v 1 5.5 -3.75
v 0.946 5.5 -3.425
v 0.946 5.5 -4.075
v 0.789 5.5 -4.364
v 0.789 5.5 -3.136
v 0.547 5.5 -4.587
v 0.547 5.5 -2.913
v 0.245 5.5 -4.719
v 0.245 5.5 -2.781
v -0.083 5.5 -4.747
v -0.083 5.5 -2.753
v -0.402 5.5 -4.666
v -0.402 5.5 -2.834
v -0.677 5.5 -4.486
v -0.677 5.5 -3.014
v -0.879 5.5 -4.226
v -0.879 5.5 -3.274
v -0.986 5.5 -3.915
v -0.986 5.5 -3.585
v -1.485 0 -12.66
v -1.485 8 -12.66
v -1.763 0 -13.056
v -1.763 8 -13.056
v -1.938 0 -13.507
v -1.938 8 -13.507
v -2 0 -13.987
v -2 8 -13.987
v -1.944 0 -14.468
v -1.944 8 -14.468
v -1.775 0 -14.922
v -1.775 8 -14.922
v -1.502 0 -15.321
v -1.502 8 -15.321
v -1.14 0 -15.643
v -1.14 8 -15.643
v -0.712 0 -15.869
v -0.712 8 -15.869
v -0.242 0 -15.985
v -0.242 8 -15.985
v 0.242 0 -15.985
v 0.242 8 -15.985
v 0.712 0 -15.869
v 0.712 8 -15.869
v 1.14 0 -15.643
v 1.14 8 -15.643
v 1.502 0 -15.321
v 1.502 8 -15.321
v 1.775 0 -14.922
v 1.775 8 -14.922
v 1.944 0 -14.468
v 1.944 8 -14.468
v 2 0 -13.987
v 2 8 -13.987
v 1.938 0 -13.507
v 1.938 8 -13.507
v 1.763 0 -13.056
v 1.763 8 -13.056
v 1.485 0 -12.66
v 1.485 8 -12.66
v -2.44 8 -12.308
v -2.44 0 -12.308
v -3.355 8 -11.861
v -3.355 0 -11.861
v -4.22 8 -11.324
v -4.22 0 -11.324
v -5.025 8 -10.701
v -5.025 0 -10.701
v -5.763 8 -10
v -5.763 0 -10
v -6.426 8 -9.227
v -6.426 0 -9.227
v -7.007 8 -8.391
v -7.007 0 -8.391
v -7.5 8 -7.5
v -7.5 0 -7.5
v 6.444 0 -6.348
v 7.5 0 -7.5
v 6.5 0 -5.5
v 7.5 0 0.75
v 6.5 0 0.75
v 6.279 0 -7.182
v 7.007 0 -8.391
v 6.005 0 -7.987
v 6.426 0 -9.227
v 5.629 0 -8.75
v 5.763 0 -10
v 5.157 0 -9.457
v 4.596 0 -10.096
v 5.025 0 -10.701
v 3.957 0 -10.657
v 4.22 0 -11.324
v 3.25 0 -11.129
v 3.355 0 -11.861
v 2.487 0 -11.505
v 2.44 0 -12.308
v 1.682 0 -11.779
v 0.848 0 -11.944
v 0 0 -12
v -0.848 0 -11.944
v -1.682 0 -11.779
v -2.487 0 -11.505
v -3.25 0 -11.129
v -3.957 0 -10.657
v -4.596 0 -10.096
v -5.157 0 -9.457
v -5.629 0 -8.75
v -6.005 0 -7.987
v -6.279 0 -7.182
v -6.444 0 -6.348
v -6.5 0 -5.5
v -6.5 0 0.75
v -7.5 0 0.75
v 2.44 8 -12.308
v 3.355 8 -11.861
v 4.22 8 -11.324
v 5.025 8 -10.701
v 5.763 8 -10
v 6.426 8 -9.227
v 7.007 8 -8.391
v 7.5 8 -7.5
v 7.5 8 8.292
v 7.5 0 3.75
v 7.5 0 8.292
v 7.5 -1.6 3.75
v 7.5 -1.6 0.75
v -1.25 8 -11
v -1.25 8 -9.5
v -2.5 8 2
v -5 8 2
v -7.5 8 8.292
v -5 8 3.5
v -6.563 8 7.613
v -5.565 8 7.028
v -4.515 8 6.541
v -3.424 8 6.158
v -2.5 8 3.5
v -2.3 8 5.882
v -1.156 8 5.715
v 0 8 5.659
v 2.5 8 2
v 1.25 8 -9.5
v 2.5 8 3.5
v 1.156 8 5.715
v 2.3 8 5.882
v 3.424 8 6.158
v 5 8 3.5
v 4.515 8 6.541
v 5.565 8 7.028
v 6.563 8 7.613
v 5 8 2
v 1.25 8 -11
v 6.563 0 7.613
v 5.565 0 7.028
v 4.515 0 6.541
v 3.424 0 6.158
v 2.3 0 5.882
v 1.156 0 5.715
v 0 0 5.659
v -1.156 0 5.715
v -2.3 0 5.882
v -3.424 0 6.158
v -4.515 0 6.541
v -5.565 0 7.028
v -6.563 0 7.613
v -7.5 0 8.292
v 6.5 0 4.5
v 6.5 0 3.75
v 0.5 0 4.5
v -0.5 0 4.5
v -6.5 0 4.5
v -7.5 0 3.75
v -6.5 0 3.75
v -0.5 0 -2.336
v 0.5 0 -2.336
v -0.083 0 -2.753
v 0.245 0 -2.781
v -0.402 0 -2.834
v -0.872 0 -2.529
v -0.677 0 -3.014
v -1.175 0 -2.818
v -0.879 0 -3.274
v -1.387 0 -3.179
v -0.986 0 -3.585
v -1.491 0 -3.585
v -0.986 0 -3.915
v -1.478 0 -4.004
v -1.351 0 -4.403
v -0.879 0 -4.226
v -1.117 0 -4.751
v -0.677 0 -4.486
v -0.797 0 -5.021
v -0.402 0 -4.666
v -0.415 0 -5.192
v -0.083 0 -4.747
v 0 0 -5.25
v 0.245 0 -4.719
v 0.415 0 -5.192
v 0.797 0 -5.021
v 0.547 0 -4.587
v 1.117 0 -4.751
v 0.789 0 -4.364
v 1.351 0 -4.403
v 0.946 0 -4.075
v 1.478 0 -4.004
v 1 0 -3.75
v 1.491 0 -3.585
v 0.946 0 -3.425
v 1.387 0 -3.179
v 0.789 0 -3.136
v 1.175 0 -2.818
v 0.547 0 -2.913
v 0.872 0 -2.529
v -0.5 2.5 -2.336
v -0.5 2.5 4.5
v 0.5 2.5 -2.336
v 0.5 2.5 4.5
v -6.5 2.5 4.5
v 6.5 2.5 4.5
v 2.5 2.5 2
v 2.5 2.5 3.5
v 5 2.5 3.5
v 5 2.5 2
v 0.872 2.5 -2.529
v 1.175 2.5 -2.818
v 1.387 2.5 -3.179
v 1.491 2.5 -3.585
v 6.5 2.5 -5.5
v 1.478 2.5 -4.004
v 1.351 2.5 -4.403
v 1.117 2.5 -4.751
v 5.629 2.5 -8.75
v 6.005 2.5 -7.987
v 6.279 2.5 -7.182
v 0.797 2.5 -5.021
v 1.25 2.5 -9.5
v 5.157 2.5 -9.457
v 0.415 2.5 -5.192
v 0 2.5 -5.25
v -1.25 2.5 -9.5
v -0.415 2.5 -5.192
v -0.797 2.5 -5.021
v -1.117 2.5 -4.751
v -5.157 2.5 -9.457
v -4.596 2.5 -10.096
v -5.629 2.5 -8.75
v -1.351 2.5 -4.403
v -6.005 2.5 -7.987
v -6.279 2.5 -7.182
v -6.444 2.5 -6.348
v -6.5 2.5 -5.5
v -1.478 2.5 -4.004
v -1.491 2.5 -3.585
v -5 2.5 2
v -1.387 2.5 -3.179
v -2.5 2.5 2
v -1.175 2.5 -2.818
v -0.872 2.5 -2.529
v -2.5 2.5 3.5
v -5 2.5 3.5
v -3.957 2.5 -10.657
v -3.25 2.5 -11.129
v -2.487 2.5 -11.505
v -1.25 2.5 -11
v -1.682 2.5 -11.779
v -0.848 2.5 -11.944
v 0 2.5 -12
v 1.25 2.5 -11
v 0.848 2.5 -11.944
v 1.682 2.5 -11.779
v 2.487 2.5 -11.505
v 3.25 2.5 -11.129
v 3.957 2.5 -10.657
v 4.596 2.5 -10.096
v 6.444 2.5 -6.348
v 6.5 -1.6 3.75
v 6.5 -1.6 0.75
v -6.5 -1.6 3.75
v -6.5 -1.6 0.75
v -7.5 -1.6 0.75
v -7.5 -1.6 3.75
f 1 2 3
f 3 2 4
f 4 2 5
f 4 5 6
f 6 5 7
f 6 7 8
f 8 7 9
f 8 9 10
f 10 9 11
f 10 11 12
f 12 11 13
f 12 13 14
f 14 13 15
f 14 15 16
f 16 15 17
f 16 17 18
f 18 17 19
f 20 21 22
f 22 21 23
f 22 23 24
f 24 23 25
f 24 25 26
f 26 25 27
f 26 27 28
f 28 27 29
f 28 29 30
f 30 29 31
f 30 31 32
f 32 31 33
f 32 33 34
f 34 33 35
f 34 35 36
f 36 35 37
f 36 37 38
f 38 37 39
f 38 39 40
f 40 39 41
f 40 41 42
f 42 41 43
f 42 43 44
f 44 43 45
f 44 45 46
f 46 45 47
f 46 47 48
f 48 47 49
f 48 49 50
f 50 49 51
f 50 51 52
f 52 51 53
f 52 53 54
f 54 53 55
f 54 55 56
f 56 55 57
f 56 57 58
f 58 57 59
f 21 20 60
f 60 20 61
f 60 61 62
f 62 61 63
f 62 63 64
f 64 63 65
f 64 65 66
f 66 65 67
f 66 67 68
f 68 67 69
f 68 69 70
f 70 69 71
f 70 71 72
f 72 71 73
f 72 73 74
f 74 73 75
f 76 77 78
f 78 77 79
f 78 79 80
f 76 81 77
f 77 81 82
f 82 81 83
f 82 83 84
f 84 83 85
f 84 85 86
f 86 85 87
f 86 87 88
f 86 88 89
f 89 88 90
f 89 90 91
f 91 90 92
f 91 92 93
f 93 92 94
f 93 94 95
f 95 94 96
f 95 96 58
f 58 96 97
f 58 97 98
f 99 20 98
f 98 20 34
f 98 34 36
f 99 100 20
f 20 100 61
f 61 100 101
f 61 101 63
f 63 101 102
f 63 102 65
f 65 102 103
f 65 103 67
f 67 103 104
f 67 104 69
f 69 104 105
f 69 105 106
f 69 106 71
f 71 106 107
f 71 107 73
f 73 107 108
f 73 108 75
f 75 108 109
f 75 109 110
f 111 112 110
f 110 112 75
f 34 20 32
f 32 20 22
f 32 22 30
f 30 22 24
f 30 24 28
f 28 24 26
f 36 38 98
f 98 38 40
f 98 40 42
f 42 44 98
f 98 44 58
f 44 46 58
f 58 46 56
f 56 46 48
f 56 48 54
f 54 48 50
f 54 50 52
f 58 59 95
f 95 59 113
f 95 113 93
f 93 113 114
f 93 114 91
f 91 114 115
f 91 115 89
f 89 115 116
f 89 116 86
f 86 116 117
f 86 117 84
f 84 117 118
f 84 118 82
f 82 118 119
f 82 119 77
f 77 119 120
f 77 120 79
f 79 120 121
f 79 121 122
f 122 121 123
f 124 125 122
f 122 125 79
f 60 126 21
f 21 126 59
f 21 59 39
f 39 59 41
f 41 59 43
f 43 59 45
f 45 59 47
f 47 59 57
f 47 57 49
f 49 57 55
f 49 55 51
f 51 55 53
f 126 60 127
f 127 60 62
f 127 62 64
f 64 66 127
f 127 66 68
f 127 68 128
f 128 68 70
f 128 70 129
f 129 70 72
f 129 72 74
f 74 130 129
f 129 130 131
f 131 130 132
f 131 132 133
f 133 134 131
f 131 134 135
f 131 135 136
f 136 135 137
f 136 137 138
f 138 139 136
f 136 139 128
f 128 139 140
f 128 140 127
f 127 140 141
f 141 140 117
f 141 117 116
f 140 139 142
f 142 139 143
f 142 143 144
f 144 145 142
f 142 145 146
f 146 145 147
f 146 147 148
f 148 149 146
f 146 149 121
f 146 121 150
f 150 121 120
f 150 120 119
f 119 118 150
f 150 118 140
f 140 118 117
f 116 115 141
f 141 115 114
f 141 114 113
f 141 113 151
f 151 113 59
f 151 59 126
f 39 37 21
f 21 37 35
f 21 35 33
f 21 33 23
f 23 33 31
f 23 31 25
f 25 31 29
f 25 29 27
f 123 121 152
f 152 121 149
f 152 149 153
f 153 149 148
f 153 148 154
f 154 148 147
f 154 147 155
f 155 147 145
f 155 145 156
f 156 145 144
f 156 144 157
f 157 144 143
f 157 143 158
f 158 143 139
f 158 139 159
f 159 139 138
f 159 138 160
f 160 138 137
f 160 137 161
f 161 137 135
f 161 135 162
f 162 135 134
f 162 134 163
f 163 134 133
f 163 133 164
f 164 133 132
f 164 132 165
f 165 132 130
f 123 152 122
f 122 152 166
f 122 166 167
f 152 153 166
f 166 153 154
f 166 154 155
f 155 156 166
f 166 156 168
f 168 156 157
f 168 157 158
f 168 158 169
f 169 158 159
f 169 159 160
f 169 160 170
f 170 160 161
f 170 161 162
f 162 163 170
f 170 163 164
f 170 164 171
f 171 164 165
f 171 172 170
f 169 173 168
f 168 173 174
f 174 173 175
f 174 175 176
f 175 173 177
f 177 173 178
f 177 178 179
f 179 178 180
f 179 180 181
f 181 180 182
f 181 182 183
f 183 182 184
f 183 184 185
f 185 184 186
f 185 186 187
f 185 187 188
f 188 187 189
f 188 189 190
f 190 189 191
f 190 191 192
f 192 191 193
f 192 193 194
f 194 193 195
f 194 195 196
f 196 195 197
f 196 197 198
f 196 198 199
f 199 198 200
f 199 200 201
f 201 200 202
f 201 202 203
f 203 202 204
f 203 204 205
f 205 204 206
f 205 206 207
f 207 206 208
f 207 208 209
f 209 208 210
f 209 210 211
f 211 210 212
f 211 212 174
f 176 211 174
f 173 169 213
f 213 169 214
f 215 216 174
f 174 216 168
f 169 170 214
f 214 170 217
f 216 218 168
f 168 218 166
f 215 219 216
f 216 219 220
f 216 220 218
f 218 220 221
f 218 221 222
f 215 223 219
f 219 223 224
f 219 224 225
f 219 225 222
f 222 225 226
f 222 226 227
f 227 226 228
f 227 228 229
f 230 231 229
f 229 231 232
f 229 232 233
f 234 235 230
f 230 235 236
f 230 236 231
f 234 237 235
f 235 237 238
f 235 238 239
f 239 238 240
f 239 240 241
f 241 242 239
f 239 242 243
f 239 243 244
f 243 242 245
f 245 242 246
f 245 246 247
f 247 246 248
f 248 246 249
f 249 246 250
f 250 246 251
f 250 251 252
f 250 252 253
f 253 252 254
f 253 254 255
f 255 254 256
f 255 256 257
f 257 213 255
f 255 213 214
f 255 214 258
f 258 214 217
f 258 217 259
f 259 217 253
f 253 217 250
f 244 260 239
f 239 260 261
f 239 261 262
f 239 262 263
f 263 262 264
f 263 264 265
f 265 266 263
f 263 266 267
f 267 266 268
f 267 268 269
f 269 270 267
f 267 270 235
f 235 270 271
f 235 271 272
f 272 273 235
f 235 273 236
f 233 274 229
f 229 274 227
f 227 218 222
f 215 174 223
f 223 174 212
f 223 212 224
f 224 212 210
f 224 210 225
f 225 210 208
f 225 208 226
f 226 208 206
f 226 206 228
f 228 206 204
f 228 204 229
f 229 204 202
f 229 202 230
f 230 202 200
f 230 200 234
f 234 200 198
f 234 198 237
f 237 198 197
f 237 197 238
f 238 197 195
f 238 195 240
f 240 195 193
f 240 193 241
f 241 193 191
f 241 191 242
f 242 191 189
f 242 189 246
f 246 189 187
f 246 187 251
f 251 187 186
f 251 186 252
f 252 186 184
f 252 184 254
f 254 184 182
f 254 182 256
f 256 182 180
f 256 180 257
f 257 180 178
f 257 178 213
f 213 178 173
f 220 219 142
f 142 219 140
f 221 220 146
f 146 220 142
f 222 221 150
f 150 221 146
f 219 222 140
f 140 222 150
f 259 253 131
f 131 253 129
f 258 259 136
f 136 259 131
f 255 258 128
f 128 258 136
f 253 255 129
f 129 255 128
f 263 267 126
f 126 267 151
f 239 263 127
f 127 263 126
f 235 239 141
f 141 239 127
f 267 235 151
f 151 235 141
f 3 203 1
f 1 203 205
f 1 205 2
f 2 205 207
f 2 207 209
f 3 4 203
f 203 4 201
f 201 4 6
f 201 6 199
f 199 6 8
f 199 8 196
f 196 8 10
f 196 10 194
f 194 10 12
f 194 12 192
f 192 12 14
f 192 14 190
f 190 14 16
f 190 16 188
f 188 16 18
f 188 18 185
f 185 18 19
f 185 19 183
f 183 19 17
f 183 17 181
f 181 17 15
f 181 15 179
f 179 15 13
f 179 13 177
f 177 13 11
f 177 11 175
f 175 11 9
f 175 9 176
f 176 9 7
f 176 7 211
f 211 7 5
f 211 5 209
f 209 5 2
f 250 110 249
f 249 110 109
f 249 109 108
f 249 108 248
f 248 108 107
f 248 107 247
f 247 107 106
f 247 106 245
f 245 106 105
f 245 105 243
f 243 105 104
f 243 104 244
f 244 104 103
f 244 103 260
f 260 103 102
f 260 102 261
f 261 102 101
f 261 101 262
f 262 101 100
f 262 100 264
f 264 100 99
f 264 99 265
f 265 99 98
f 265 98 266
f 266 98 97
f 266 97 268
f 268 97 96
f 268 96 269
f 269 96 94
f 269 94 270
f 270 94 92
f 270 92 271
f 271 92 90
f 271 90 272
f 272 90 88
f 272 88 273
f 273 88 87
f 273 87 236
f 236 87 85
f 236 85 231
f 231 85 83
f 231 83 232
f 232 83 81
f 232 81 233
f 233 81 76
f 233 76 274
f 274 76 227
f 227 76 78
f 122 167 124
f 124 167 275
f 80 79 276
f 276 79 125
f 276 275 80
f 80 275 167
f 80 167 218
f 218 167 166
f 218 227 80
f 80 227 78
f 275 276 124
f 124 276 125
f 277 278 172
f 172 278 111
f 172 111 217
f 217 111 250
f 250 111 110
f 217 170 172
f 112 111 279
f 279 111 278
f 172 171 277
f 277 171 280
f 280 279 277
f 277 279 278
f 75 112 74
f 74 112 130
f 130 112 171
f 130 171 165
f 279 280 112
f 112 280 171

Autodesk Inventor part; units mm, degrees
ref_plane "YZ Plane" through (0, 0, 0) normal (1, 0, 0) x (0, 1, 0)
ref_plane "XZ Plane" through (0, 0, 0) normal (0, 1, 0) x (-1, 0, 0)
ref_plane "XY Plane" through (0, 0, 0) normal (0, 0, 1) x (1, 0, 0)
sketch "Sketch1" plane through (0, 0, 0) normal (0, 1, 0) x (-1, 0, 0)
  line L0 (-7.5, 5.5) -> (7.5, 5.5)
  line L1 (7.5, 5.5) -> (7.5, -5.5)
  line L2 (7.5, -5.5) -> (-7.5, -5.5)
  line L3 (-7.5, -5.5) -> (-7.5, 5.5)
  line L4 (-7.5, 5.5) -> (7.5, -5.5) construction
  line L5 (7.5, 5.5) -> (-7.5, -5.5) construction
  circle A0 centre (0, -5.5) radius 7.5 construction
  arc A1 (-7.5, -5.5) -> (7.5, -5.5) centre (0, -5.5) ccw
  point P0 (0, 0)
  dimension "d0" = 11
  dimension "d1" = 15
extrude "Extrusion1" add sketch "Sketch1" along normal blind 8
sketch "Sketch2" plane through (0, 0, 0) normal (0, -1, 0) x (1, 0, 0)
  line L0 (7.5, 9.25) -> (-7.5, 9.25)
  line L1 (-7.5, 9.25) -> (-7.5, -20.75)
  line L2 (-7.5, -20.75) -> (7.5, -20.75)
  line L3 (7.5, -20.75) -> (7.5, 9.25)
  line L4 (7.5, 9.25) -> (-7.5, -20.75) construction
  line L5 (-7.5, 9.25) -> (7.5, -20.75) construction
  line L6 (-7.5, 5.5) -> (7.5, 5.5) projected
  line L7 (7, 8.75) -> (-7, 8.75) construction
  line L8 (-7, 8.75) -> (-7, -20.25) construction
  line L9 (-7, -20.25) -> (7, -20.25) construction
  line L10 (7, -20.25) -> (7, 8.75) construction
  line L11 (7, 8.75) -> (-7, -20.25) construction
  line L12 (-7, 8.75) -> (7, -20.25) construction
  point P0 (0, 0)
  point P1 (0, -5.75)
  dimension "d4" = 15
  dimension "d5" = 30
  dimension "d6" = 3.75
  dimension "d18" = 0.5
  dimension "d19" = 0.5
sketch "Sketch4" plane through (0, 0, 0) normal (0, -1, 0) x (1, 0, 0)
  line L0 (-7.5, -5.5) -> (-7.5, 5.5) projected
  line L1 (-7.5, 3.75) -> (-6.5, 3.75)
  line L2 (-6.5, 3.75) -> (-6.5, 0.75)
  line L3 (-6.5, 0.75) -> (-7.5, 0.75)
  line L4 (-7.5, 0.75) -> (-7.5, 3.75)
  line L5 (7.5, 5.5) -> (7.5, -5.5) projected
  line L6 (7.5, 0.75) -> (6.5, 0.75)
  line L7 (6.5, 0.75) -> (6.5, 3.75)
  line L8 (6.5, 3.75) -> (7.5, 3.75)
  line L9 (7.5, 3.75) -> (7.5, 0.75)
  line L10 (-7.5, -20.25) -> (7.5, -20.25) construction
  line L11 (7.5, -20.25) -> (7.5, 9.75) construction
  line L12 (7.5, 9.75) -> (-7.5, 9.75) construction
  line L13 (-7.5, 9.75) -> (-7.5, -20.25) construction
  line L14 (-7.5, -20.25) -> (7.5, 9.75) construction
  line L15 (7.5, -20.25) -> (-7.5, 9.75) construction
  line L16 (-7.5, 5.5) -> (7.5, 5.5) construction
  arc A0 (-7.5, -5.5) -> (7.5, -5.5) centre (0, -5.5) ccw construction
  point P0 (0, 0)
  point P1 (0, -5.25)
  point P2 (0, -13)
  point P3 (-7, 3.75)
  point P4 (-7.5, 0.75)
  point P5 (-7, 0.75)
  point P6 (7.5, 3.75)
  point P7 (-7.5, 0.75)
  dimension "d20" = 1
  dimension "d21" = 3
  dimension "d22" = 1
  dimension "d23" = 3
  dimension "d24" = 15
  dimension "d25" = 30
  dimension "d27" = 7.25
  dimension "d106" = 0.75
extrude "Extrusion3" add sketch "Sketch4" along normal blind 1.6
sketch "Sketch6" plane through (0, 0, 0) normal (0, -1, 0) x (1, 0, 0)
  line L0 (7.5, 11.25) -> (-7.5, 11.25)
  line L1 (-7.5, 11.25) -> (-7.5, -18.75)
  line L2 (-7.5, -18.75) -> (7.5, -18.75)
  line L3 (7.5, -18.75) -> (7.5, 11.25)
  line L4 (7.5, 11.25) -> (-7.5, -18.75) construction
  line L5 (-7.5, 11.25) -> (7.5, -18.75) construction
  line L6 (7, 10.75) -> (-7, 10.75) construction
  line L7 (-7, 10.75) -> (-7, -18.25) construction
  line L8 (-7, -18.25) -> (7, -18.25) construction
  line L9 (7, -18.25) -> (7, 10.75) construction
  line L10 (7, 10.75) -> (-7, -18.25) construction
  line L11 (-7, 10.75) -> (7, -18.25) construction
  circle A0 centre (0, -3.75) radius 1
  circle A1 centre (0, -3.75) radius 1.5
  line L12 (-6.5, 4.5) -> (6.5, 4.5)
  line L13 (6.5, 4.5) -> (6.5, -5.5)
  line L14 (6.5, -5.5) -> (-6.5, -5.5)
  line L15 (-6.5, -5.5) -> (-6.5, 4.5)
  line L16 (-7.5, 5.5) -> (7.5, 5.5) projected
  arc A2 (-7.5, -5.5) -> (7.5, -5.5) centre (0, -5.5) ccw projected
  circle A3 centre (0, -5.5) radius 6.5
  point P0 (0, 0)
  point P1 (-7.5, -3.75)
  point P2 (6.5, -5.5)
  dimension "d31" = 15
  dimension "d32" = 30
  dimension "d34" = 0.5
  dimension "d35" = 0.5
  dimension "d36" = 2
  dimension "d37" = 0.5
  dimension "d38" = 1
  dimension "d39" = 1
  dimension "d40" = 1
  dimension "d41" = 1
  dimension "d107" = 3.75
extrude "Extrusion4" cut sketch "Sketch6" against normal blind 2.5 contours A0 | L12 L13 A3 L15 | A3 L14 | L14 A3
sketch "Sketch10" plane through (0, 8, 0) normal (0, 1, 0) x (1, 0, 0)
  point P0 (0, 0)
sketch "Sketch11" plane through (0, 0, 0) normal (0, -1, 0) x (1, 0, 0)
  line L0 (-5, 3.5) -> (-2.5, 3.5)
  line L1 (-2.5, 3.5) -> (-2.5, 2)
  line L2 (-2.5, 2) -> (-5, 2)
  line L3 (-5, 2) -> (-5, 3.5)
  line L4 (2.5, 3.5) -> (5, 3.5)
  line L5 (5, 3.5) -> (5, 2)
  line L6 (5, 2) -> (2.5, 2)
  line L7 (2.5, 2) -> (2.5, 3.5)
  line L8 (-6.5, 3.75) -> (-7.5, 3.75) projected
  line L9 (-6.5, 0.75) -> (-6.5, 3.75) projected
  line L10 (6.5, 3.75) -> (6.5, 0.75) projected
  line L11 (-6.5, 4.5) -> (6.5, 4.5) projected
  line L12 (-1.25, -11) -> (1.25, -11)
  line L13 (1.25, -11) -> (1.25, -9.5)
  line L14 (1.25, -9.5) -> (-1.25, -9.5)
  line L15 (-1.25, -9.5) -> (-1.25, -11)
  circle A0 centre (0, -3.75) radius 1 projected
  point P0 (0, 0)
  point P1 (-3.75, 3.5)
  point P2 (3.75, 3.5)
  point P3 (1.25, -10.25)
  point P4 (2.5, 2.75)
  point P5 (0, -9.5)
  point P6 (3.75, 2)
  point P7 (-2.5, 2.75)
  dimension "d51" = 2.5
  dimension "d52" = 1.5
  dimension "d55" = 2.75
  dimension "d56" = 2.75
  dimension "d60" = 13
  dimension "d61" = 3.75
  dimension "d62" = 3.75
  dimension "d103" = 6.5
  dimension "d104" = 6.5
extrude "Extrusion8" cut sketch "Sketch11" against normal blind 10 contours L0 L1 L2 L3 | L4 L5 L6 L7 | L15 L14 L13 L12
sketch "Sketch12" plane through (0, 2.5, 0) normal (0, -1, 0) x (1, 0, 0)
  line L0 (5, 2) -> (5, 3.5) construction
  line L1 (2.5, 2) -> (5, 2) construction
  line L2 (5, 3.5) -> (2.5, 3.5) construction
  line L3 (2.5, 3.5) -> (2.5, 2) construction
  line L4 (2.5, 2) -> (5, 2) construction
  line L5 (5, 2) -> (5, 3.5) construction
  line L6 (-2.5, 2) -> (-2.5, 3.5) construction
  line L7 (-2.5, 2) -> (-5, 2) construction
  line L8 (-2.5, 3.5) -> (-5, 3.5) construction
  line L9 (-5, 3.5) -> (-5, 2) construction
  line L10 (-5, 2) -> (-2.5, 2) construction
  line L11 (-2.5, 2) -> (-2.5, 3.5) construction
  line L12 (-1.25, -9.5) -> (1.25, -9.5) construction
  line L13 (-1.25, -9.5) -> (-1.25, -11) construction
  line L14 (1.25, -9.5) -> (-1.25, -9.5) construction
  line L15 (-1.25, -9.5) -> (-1.25, -11) construction
  line L16 (-1.25, -11) -> (1.25, -11) construction
  line L17 (1.25, -11) -> (1.25, -9.5) construction
  line L18 (5.5, 3.5) -> (2, 3.5)
  line L19 (2, 3.5) -> (2, 2)
  line L20 (2, 2) -> (5.5, 2)
  line L21 (5.5, 2) -> (5.5, 3.5)
  line L22 (1.75, -9.5) -> (-1.75, -9.5)
  line L23 (-1.75, -9.5) -> (-1.75, -11)
  line L24 (-1.75, -11) -> (1.75, -11)
  line L25 (1.75, -11) -> (1.75, -9.5)
  line L26 (-2, 3.5) -> (-5.5, 3.5)
  line L27 (-5.5, 3.5) -> (-5.5, 2)
  line L28 (-5.5, 2) -> (-2, 2)
  line L29 (-2, 2) -> (-2, 3.5)
  point P0 (0, 0)
  point P1 (-2.5, 2.75)
  point P2 (-2, 2.75)
  point P3 (-3.75, 2)
  point P4 (-3.75, 2)
  point P5 (-3.75, 3.5)
  point P6 (-3.75, 3.5)
  point P7 (-5, 2.75)
  point P8 (-5.5, 2.75)
  point P9 (1.25, -10.25)
  point P10 (1.75, -10.25)
  point P11 (0, -11)
  point P12 (-1.25, -10.25)
  dimension "d63" = 0.5
  dimension "d64" = 0
  dimension "d65" = 0
  dimension "d67" = 0.5
  dimension "d68" = 0
  dimension "d69" = 0
  dimension "d70" = 0.5
  dimension "d71" = 0.5
  dimension "d72" = 0
  dimension "d73" = 0
  dimension "d74" = 0.5
  dimension "d96" = 0.5
sketch "Sketch16" plane through (0, 2.5, 0) normal (0, -1, 0) x (1, 0, 0)
  line L0 (-6.5, -5.5) -> (-6.5, 4.5) construction
  line L1 (-6.5, 4.5) -> (6.5, 4.5) construction
  line L2 (-6.5, 4.5) -> (6.5, 4.5) construction
  line L3 (-0.5, 4.5) -> (0.5, 4.5)
  line L4 (0.5, 4.5) -> (0.5, -2.75)
  line L5 (0.5, -2.75) -> (-0.5, -2.75)
  line L6 (-0.5, -2.75) -> (-0.5, 4.5)
  circle A0 centre (0, -3.75) radius 1.5 construction
  circle A1 centre (0, -3.75) radius 1.75 construction
  line L7 (-6.5, -2.75) -> (6.5174, -2.75) construction
  circle A2 centre (0, -3.75) radius 1.5 construction
  circle A3 centre (0, -3.75) radius 1 construction
  line L8 (6.5, 0.75) -> (6.5, -5.5) projected
  line L9 (-6.5, -5.873) -> (6.5, -5.873)
  line L10 (6.5, -5.873) -> (6.5, -6.873)
  line L11 (6.5, -6.873) -> (-6.5, -6.873)
  line L12 (-6.5, -6.873) -> (-6.5, -5.873)
  point P0 (0, 0)
  point P1 (0, 4.5)
  point P2 (0.0087, -2.75)
  dimension "d94" = 1
  dimension "d95" = 1
extrude "Extrusion10" add sketch "Sketch16" along normal blind 2.5 contours L3 L4 L5 L6
sketch "Sketch19" plane through (-7.5, 0, 5.5) normal (0, 0, 1) x (1, 0, 0)
  line L0 (15, 0) -> (15, 8) projected
  line L1 (0, 8) -> (15, 8)
  line L2 (15, 8) -> (15, 0)
  line L3 (15, 0) -> (0, 0)
  line L4 (0, 0) -> (0, 8)
  point P0 (7.5, 0)
extrude "Extrusion13" add sketch "Sketch19" along normal blind 6
sketch "Sketch18" plane through (0, 8, 0) normal (0, 1, 0) x (1, 0, 0)
  line L0 (-7.5, -3.75) -> (-7.5, -5.5) projected
  line L1 (-7.5, -5.5) -> (-7.5, -8.2917)
  line L2 (7.5, -5.5) -> (7.5, -8.2917)
  arc A0 (7.5, -8.2917) -> (-7.5, -8.2917) centre (0, -17.6592) ccw
  line L3 (-7.5, -5.5) -> (0, -3.75)
  line L4 (-7.5, -5.5) -> (7.5, -5.5) projected
  line L5 (0, -3.75) -> (7.5, -5.5)
  line L6 (-7.5, -8.2917) -> (-7.5, -17.8663)
  line L7 (-7.5, -17.8663) -> (8.2387, -17.8663)
  line L8 (8.2387, -17.8663) -> (7.5, -8.2917)
  line L9 (-7.5, -8.2917) -> (-7.5, -5.5)
  point P0 (0, 0)
  point P1 (3.395, -5.5)
  point P2 (-3.395, -5.5)
  dimension "d108" = 12
extrude "Extrusion12" cut sketch "Sketch18" against normal blind 8 contours A0 L8 L7 L6
sketch "Sketch21" plane through (0, 8, 0) normal (0, 1, 0) x (1, 0, 0)
  line L0 (-7.5, 5.5) -> (-7.5, -8.2917) projected
  line L1 (-7.5, 5.5) -> (-4.5586, 5.5)
  line L2 (-4.5586, 5.5) -> (-4.5586, 13.4633)
  line L3 (-4.5586, 13.4633) -> (-7.5, 13.4633)
  line L4 (-7.5, 13.4633) -> (-7.5, 5.5)
  arc A0 (7.5, 5.5) -> (-7.5, 5.5) centre (0, 5.5) ccw projected
  line L5 (7.5, 5.5) -> (3.8632, 5.5)
  line L6 (3.8632, 5.5) -> (3.8632, 13.1156)
  line L7 (3.8632, 13.1156) -> (7.5, 13.1156)
  line L8 (7.5, 13.1156) -> (7.5, 5.5)
  point P0 (0, 0)
  point P1 (3.8632, 11.9285)
  point P2 (-4.5586, 11.4556)
  point P3 (-7.5, -5.5)
extrude "Extrusion15" add sketch "Sketch21" against normal blind 8 contours L6 L7 L8 A0 | L4 L3 L2 A0
sketch "Sketch20" plane through (0, 8, 0) normal (0, 1, 0) x (1, 0, 0)
  arc A0 (7.5, 5.5) -> (-7.5, 5.5) centre (0, 5.5) ccw projected
  line L0 (-7.5, 5.5) -> (-7.5, 7.5)
  line L1 (7.5, 5.5) -> (7.5, 7.5)
  arc A1 (0, 13) -> (-7.5, 7.5) centre (1.4853, 3.1109) ccw
  arc A2 (7.5, 7.5) -> (0, 13) centre (-1.4853, 3.1109) ccw
  line L2 (-7.5, 7.5) -> (-7.5, 19.3065)
  line L3 (-7.5, 7.5) -> (4.3065, 7.5) construction
  line L4 (-7.5, 19.3065) -> (7.5, 19.3065)
  line L5 (7.5, 19.3065) -> (7.5, 7.5)
  point P0 (0, 0)
  point P1 (-6.7259, 8.8184)
  point P2 (6.7259, 8.8184)
  dimension "d113" = 2
  dimension "d114" = 10
  dimension "d115" = 90
  dimension "d116" = 90
extrude "Extrusion14" cut sketch "Sketch20" against normal blind 10 contours A2 A0 | A0 A1 L2 L4 L5 A2 | A1 A0
sketch "Sketch22" plane through (0, 8, 0) normal (0, 1, 0) x (1, 0, 0)
  line L0 (0, 0) -> (0, 20.304) construction
  circle A0 centre (0, 14) radius 2
  line L1 (-1.25, 11) -> (1.25, 11) projected
  dimension "d121" = 4
  dimension "d122" = 3
extrude "Extrusion16" add sketch "Sketch22" against normal blind 8
sketch "Sketch23" plane through (0, 2.5, -3.75) normal (0, -1, 0) x (1, 0, 0)
  circle A0 centre (0, 0) radius 1 projected
  circle A1 centre (0, 0) radius 1
  point P0 (0, 3.75)
extrude "Extrusion17" cut sketch "Sketch23" against normal blind 3
sketch "Sketch14" plane through (0, 2.5, 0) normal (0, -1, 0) x (1, 0, 0)
  line L0 (5, 2.75) -> (2.5, 2.75) construction
  line L1 (2.5, 2.75) -> (2.5, 1.25) construction
  line L2 (2.5, 1.25) -> (5, 1.25) construction
  line L3 (5, 1.25) -> (5, 2.75) construction
  line L4 (5.5, 3.25) -> (2, 3.25)
  line L5 (2, 3.25) -> (2, 0.75)
  line L6 (2, 0.75) -> (5.5, 0.75)
  line L7 (5.5, 0.75) -> (5.5, 3.25)
  dimension "d86" = 0.5
  dimension "d87" = 0.5
sketch "Sketch15" plane through (0, 3.5, 0) normal (0, -1, 0) x (1, 0, 0)
  line L0 (5, 2.75) -> (2.5, 2.75)
  line L1 (2.5, 2.75) -> (2.5, 1.25)
  line L2 (2.5, 1.25) -> (5, 1.25)
  line L3 (5, 1.25) -> (5, 2.75)
  point P0 (0, 0)
sketch "Sketch8" plane through (0, 0, -3.75) normal (0, -1, 0) x (1, 0, 0)
  circle A0 centre (0, 0) radius 1.75
  circle A1 centre (0, 0) radius 1.5 projected
  circle A2 centre (0, 0) radius 1.5
  point P0 (0, 3.75)
  dimension "d46" = 0.25
sketch "Sketch7" plane through (0, 2.5, -3.75) normal (0, -1, 0) x (1, 0, 0)
  circle A0 centre (0, 0) radius 1.25
  point P0 (0, 3.75)
properties part number "NORGATE"
